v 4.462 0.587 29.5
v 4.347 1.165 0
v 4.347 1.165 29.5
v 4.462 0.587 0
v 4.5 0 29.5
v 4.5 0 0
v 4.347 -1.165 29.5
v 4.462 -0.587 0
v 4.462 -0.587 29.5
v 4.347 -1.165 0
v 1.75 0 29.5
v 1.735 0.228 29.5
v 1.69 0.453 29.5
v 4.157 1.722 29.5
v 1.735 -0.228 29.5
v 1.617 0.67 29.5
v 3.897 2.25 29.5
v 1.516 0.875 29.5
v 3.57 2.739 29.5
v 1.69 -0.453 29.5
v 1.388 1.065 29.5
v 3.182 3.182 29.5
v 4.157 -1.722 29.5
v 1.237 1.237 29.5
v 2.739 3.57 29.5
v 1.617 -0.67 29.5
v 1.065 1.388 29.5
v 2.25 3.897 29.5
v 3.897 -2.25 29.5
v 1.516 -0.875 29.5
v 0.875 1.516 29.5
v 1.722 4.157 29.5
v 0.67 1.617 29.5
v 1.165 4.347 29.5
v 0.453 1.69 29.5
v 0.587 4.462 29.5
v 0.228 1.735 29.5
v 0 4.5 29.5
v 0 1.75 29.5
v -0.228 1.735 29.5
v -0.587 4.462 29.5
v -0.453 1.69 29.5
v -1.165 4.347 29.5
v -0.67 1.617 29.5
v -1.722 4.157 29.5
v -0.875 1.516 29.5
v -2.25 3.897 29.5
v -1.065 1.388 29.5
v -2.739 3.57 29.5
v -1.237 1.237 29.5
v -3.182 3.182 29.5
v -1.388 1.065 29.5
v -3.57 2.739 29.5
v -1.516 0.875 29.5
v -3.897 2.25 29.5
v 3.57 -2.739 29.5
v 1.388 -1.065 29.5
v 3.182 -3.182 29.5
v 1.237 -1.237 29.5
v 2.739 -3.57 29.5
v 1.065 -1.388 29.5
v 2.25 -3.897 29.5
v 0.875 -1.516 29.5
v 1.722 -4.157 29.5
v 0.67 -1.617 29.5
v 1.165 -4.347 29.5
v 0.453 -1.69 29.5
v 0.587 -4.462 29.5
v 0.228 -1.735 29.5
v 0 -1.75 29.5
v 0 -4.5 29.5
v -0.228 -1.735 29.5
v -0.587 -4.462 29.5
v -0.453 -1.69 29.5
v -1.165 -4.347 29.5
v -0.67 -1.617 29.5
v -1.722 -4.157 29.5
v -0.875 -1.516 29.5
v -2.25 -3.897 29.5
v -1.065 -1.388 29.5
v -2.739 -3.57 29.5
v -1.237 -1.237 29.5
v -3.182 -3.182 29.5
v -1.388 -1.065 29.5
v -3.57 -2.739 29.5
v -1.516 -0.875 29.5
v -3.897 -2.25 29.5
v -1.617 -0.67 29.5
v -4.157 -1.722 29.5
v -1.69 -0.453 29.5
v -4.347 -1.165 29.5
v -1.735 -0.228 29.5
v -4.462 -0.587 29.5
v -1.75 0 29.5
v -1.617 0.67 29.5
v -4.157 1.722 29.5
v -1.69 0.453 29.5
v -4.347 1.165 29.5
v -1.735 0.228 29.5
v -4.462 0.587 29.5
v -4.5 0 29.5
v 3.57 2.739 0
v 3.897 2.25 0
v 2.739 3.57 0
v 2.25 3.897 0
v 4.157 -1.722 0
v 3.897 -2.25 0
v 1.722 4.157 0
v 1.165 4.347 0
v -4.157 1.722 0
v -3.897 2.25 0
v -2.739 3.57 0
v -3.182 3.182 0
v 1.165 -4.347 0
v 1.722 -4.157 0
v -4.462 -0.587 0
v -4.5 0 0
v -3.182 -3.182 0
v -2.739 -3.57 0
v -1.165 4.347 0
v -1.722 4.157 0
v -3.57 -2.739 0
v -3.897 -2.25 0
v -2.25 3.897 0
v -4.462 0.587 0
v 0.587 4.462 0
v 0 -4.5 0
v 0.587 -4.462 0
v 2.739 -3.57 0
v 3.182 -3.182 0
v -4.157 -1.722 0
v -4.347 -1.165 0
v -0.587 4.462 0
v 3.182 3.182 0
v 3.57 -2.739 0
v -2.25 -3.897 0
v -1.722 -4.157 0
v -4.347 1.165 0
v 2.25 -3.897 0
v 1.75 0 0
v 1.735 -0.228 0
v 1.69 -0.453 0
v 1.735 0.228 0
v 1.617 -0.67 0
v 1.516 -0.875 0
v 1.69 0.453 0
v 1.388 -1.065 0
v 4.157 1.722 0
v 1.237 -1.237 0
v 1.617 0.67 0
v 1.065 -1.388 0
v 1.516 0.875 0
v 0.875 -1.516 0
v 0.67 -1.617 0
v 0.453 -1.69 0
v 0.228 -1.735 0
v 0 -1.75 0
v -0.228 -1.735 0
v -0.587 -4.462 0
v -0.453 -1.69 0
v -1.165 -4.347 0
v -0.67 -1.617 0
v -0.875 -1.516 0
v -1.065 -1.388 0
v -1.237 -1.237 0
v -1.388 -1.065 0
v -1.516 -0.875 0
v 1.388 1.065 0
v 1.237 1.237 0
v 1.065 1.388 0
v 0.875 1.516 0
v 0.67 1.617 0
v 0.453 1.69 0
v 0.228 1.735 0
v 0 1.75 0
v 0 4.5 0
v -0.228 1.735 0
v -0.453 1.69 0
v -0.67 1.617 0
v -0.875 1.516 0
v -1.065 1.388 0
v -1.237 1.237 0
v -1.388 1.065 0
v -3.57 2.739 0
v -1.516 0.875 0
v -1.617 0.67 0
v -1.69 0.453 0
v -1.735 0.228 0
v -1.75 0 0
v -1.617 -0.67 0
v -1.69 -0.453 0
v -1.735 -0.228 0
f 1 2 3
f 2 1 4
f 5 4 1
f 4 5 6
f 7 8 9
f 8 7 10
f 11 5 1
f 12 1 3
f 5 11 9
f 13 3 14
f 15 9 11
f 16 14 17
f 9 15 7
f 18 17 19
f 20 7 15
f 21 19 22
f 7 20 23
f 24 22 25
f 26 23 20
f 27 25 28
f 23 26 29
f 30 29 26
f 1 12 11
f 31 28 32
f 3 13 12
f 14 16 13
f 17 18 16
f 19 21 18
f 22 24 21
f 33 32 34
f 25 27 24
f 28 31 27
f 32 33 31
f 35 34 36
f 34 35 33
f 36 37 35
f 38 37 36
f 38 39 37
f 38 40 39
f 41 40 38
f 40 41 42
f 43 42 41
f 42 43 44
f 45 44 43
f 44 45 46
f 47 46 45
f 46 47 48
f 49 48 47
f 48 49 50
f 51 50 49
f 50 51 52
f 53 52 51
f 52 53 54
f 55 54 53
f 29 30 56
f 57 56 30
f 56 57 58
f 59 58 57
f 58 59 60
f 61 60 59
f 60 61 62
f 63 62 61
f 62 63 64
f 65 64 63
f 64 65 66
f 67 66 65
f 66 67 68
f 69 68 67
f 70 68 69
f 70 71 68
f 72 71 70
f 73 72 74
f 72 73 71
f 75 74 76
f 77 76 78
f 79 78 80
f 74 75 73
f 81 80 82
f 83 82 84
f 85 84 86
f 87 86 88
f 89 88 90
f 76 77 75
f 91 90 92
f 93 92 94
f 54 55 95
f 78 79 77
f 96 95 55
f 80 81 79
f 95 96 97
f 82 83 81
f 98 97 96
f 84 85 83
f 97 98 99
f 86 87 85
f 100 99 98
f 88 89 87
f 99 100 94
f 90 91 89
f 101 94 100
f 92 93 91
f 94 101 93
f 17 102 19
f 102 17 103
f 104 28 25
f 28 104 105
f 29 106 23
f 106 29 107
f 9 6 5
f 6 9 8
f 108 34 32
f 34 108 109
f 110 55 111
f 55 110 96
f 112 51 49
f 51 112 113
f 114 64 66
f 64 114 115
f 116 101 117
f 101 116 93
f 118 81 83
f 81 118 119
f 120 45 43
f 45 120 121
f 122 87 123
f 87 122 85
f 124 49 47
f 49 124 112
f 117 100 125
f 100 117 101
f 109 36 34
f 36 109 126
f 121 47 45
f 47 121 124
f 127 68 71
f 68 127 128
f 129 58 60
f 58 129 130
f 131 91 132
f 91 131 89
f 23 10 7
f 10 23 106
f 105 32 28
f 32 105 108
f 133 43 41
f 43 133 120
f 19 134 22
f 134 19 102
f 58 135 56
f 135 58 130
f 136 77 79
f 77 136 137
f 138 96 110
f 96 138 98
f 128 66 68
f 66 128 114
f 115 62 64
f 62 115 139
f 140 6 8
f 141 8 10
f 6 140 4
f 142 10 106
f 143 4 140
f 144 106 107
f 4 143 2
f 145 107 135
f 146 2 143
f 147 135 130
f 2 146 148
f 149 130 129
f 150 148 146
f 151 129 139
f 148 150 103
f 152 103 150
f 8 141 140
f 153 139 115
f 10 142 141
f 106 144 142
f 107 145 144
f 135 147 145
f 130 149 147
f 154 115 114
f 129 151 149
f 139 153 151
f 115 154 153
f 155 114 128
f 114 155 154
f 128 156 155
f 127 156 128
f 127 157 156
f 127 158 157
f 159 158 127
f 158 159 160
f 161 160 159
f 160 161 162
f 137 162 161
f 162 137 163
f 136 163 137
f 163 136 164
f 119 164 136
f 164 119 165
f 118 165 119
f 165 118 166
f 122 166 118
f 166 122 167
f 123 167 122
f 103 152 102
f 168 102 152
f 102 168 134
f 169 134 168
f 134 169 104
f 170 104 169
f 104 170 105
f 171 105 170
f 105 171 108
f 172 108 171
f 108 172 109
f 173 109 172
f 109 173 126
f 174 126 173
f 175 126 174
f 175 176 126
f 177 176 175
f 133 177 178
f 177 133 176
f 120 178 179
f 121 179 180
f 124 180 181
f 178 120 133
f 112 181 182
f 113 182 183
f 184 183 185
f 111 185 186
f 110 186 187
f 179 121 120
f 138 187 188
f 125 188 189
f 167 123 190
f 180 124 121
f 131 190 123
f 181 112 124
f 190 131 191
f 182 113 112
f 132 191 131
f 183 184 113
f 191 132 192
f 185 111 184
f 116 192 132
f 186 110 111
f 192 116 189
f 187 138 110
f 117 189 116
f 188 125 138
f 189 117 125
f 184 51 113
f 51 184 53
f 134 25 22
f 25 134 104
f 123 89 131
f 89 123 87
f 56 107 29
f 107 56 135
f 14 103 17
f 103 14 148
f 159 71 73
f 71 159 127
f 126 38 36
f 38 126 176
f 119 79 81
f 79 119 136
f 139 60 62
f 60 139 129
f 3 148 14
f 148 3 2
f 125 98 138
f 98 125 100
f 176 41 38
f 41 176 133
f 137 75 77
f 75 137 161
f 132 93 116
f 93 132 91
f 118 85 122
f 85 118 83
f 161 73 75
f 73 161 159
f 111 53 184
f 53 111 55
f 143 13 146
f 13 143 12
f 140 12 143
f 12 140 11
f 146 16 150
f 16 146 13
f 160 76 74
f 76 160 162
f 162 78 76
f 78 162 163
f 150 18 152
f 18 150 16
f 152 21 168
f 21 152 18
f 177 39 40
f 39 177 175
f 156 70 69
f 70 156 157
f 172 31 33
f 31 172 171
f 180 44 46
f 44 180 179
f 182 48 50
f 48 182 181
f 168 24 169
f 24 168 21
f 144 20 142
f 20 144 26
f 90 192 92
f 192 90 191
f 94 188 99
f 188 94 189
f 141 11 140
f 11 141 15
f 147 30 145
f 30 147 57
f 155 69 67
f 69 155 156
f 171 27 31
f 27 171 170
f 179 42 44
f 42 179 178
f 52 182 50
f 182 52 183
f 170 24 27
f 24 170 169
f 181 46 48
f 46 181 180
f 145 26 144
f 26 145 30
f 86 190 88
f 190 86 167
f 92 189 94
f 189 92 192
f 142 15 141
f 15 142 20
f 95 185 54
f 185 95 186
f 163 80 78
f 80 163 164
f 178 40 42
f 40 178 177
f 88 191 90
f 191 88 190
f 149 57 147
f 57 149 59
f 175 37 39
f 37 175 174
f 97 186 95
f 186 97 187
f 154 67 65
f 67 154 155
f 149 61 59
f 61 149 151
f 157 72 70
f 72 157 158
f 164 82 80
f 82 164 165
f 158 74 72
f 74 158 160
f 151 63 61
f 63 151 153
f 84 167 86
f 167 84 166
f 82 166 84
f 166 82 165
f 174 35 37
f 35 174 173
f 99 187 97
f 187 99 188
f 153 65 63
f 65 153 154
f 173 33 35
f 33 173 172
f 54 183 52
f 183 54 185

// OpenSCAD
// file: parameters.scad
// =============================================================================
// Gen-CL — nightly 2026-10-16 (physics_scorer, honest magpylib watts)
// Modular swap: exactly the Gen-CJ rotors, arcs and steel, on a thinner-copper stator (4.0 mm copper, so the magnet faces close in by 0.5 mm) that needs only ≈300 m of 26 AWG — the rest of the spool stays free. Swap stators by changing the gap sleeve only.
// Clocking 0 deg (magnets N facing S) + D-flat keyed bore + index notch + flip-symmetric hole map.
// Windable 2-piece bobbin; turns = physics_scorer turns_fit; copper only between flanges.
// Steel back-iron: 2× Ø198 × 4.76 mm (3/16") mild-steel discs (steel_backiron_disc.dxf); magnets sit ON the steel
// (through-pockets) -> score with --back-iron. Night 2026-10-16.
// =============================================================================
topology            = "dual_rotor";

// --- Wire / winding (physics_scorer winding-fit) -------------------------------
wire_awg            = 26;
wire_od             = 0.45;     // insulated OD mm (bare 0.405)
fill_realistic      = 0.65;     // insulated-wire area / window (DENSE layered wind with a jig; scorer cap 0.65)
turns               = 196;       // = physics_scorer turns_fit (do NOT raise)
coil_former_type    = "bobbin";
coil_core_inset     = 12.00;     // radial copper build: hub = copper boundary inset by this
wind_build_axial    = 0.0;      // nothing proud of the flanges
wind_build_radial   = 0.0;

// --- Bobbin (base + lid) ---------------------------------------------------------
coil_id_r           = 50.00;    // copper boundary sector
coil_od_r           = 104.00;
span_deg            = 25.99;    // = pitch - 2*asin((wall+0.85)/coil_id_r) -> >=1.2 mm stator web
former_web          = 4.00;     // copper height between flanges (TALL copper: steel keeps Bz up)
flange_t            = 0.80;     // >= 0.8 mm FDM wall rule (tall winds push on the flanges)
wall                = 0.80;     // flange lip beyond copper
former_bare_h       = former_web + 2 * flange_t;
coil_envelope_h     = former_bare_h + 2 * wind_build_axial;
tab_w               = 7.0;
tab_len             = 7.0;
tab_h               = former_bare_h / 2;
pin_d               = 1.9;      // 1.75 mm filament locating pin
coil_mount_r        = coil_od_r + 0.2 + 4.0;
lead_y              = 1.6;
lead_slot_w         = 0.9;
lead_groove_d       = 0.6;

// --- Gap -------------------------------------------------------------------------
run_clear           = 0.50;     // rotor face -> flange
gap_spacer_h        = run_clear + wind_build_axial;
m2m                 = coil_envelope_h + 2 * run_clear;   // rotor face to rotor face (= gap_sleeve length)

// --- Stator ----------------------------------------------------------------------
coil_stations       = 12;
bay_clear           = 0.35;     // 0.35 mm: bobbin BASES print IN PLACE inside the stator bays (print-in-place gap), then pop out
stator_thick        = former_bare_h;                        // bobbins flush both faces
stator_od           = 229.0;
shaft_clear_stator  = 14.0;     // stator is static; gap sleeve OD 12 spins inside
stator_ir           = 44.85;    // ANNULAR stator: open centre (nested one-plate pack); inner rim 4.0 mm

// --- Rotor(s) --------------------------------------------------------------------
magnet_Br           = 1.43;     // N52
magnet_d_large      = 20.0;
magnet_h_large      = 5.0;      // one O20x5 per pocket
magnet_h_small      = 5.0;      // one O5x5 per pocket
halbach_magnetisation = "diametric"; // O5x5 assist magnets MUST be DIAMETRICALLY magnetised (tangential)
rotor_b_same_axis   = true;     // same-index magnets share one axis: N faces S across the gap
large_pocket_d      = 20.3;
small_pocket_d      = 5.3;
pocket_h            = 5.00;     // THROUGH the carrier: magnet back face sits on the steel disc (FLUSH seat: carrier = magnet height, magnet face level with the rotor face)
large_n             = 8;
R_large             = 86.0;
R_small_inner       = 79.8;
R_small_mid         = 86.0;
R_small_outer       = 92.2;
small_r_list        = [R_small_inner, R_small_mid, R_small_outer];   // O5 pockets between poles
// --- N42 rectangular BLOCK magnets (2026-10-16/17): one 20x10x5 block per pole, radially INSIDE the O20 disc ---
block_R_list        = [64.5];   // block centre radius (pole angle); same polarity as its O20 -> radially extended pole
block_angle_list    = [0];
block_radial        = 20.0;    // block side that runs RADIALLY (mm)
block_tangential    = 10.0;    // block side that runs TANGENTIALLY (mm)
block_h             = 5.0;     // magnetised through the 5 mm thickness (axial), = magnet_h_large so it sits on the steel
block_Br            = 1.29;    // N42 remanence (1.28-1.32 T); scorer models it as a magpylib Cuboid
block_pocket_clear  = 0.3;    // pocket = block + 0.3 mm each way (+ 1.2 mm corner reliefs)
carrier_od          = 198.0;
ring_ir             = 51.35;    // RING rotor: PLA magnet ring r ring_ir..carrier_od/2 (steel disc = structural rotor)
hub_flange_od       = 58.0;     // separate rotor_hub flange (inside the ring, flush with the ring face)
csk_d               = 6.6;      // M3 countersunk head pocket (ISO 10642 head 6.0 nominal) on the stator face
csk_depth           = 1.55;     // = (csk_d - m3_clear) / 2: 90 deg cone; head sits 0.3 mm below the face
n_seg               = 8;        // magnet-carrier ARCS per rotor (segmented carrier)
seg_deg             = 360 / n_seg;
seg_start           = -32;   // arc edge angle (between pocket 0 and its clamp bolt)
seg_kerf_deg        = 0.4;      // gap between neighbouring arcs on the steel
carrier_thick       = pocket_h;
hub_h               = 12.0;     // > steel_t + insert: radial set-screw clears the steel
hub_od              = 24.0;     // slim hub so the M4 brace rods fit at R~18 inside the coil ring
hub_insert_d        = 4.0;      // M3 heat-set insert, radial, bears on the D-flat
rotor_b_offset_deg  = 0.0;      // CLOCKING: magnets directly opposite
shaft_key           = "dflat";
dflat_depth         = 0.5;      // 8 mm shaft with 0.5 mm flat (7.5 across flat)
index_notch_d       = 3.0;

// --- Steel back-iron (buyable laser-cut) -------------------------------------------
steel_t             = 4.76;      // mild steel thickness (image method ignores it; sized from steel_flux.py so the return path stays well below saturation)
steel_center_hole   = 26.0;     // slips over the rotor hub (OD 24)
steel_od            = carrier_od;   // steel disc OD = rotor carrier OD

// --- Modular MAX interface ----------------------------------------------------------
shaft_bore          = 8.35;
dflat_x             = 4.0 - dflat_depth + (shaft_bore - 8.0) / 2;
bearing_d           = 21.85;
bearing_h           = 7.2;
m3_clear            = 3.5;
bolt_r_inner        = 22.0;     // M3 steel-disc clamp bolts (inside the magnet ring)
bolt_n_inner        = 4;
bolt_inner_angles   = [0, 90, 180, 270];
bolt_r_outer        = 86.0;     // second M3 steel-disc clamp ring
bolt_outer_angles   = [13.0, 32.0, 58.0, 77.0, 103.0, 122.0, 148.0, 167.0, 193.0, 212.0, 238.0, 257.0, 283.0, 302.0, 328.0, 347.0];
flange_bolt_r       = 109.5;     // frame rods: OUTSIDE the rotor OD (rotors spin inside them)
flange_bolt_n       = 4;
flange_bolt_offset  = 45.00;    // between coil stations -> never cuts a lead groove/tab
brace_r             = 18.0;
brace_d             = 4.3;      // temporary M4 jack rods (assembly only)
brace_n             = 4;
brace_angles        = [45, 135, 225, 315];          // flip-symmetric

spacer_pad_od       = 14.0;
spacer_pad_id       = m3_clear;
endbell_od          = 229.0;
endbell_thick       = 8.0;
endbell_shaft_clear = 10.0;
collar_h            = 10.0;
standoff_od         = 9.0;
frame_standoff_h    = run_clear + carrier_thick + hub_h + collar_h + 2.0;
sleeve_od           = 12.0;
plate_max_mm        = 410;

$fn = 64;
// main file
// Gen-CL — frame standoff tube between stator and an endbell, on each M3 frame rod (outside rotor OD).
// Print x4. Height = frame_standoff_h (rotor + steel + hub + collar + running clearance).
include <parameters.scad>;
$fn = 48;
difference() {
    cylinder(d=standoff_od, h=frame_standoff_h);
    translate([0, 0, -0.1]) cylinder(d=m3_clear, h=frame_standoff_h + 0.2);
}
